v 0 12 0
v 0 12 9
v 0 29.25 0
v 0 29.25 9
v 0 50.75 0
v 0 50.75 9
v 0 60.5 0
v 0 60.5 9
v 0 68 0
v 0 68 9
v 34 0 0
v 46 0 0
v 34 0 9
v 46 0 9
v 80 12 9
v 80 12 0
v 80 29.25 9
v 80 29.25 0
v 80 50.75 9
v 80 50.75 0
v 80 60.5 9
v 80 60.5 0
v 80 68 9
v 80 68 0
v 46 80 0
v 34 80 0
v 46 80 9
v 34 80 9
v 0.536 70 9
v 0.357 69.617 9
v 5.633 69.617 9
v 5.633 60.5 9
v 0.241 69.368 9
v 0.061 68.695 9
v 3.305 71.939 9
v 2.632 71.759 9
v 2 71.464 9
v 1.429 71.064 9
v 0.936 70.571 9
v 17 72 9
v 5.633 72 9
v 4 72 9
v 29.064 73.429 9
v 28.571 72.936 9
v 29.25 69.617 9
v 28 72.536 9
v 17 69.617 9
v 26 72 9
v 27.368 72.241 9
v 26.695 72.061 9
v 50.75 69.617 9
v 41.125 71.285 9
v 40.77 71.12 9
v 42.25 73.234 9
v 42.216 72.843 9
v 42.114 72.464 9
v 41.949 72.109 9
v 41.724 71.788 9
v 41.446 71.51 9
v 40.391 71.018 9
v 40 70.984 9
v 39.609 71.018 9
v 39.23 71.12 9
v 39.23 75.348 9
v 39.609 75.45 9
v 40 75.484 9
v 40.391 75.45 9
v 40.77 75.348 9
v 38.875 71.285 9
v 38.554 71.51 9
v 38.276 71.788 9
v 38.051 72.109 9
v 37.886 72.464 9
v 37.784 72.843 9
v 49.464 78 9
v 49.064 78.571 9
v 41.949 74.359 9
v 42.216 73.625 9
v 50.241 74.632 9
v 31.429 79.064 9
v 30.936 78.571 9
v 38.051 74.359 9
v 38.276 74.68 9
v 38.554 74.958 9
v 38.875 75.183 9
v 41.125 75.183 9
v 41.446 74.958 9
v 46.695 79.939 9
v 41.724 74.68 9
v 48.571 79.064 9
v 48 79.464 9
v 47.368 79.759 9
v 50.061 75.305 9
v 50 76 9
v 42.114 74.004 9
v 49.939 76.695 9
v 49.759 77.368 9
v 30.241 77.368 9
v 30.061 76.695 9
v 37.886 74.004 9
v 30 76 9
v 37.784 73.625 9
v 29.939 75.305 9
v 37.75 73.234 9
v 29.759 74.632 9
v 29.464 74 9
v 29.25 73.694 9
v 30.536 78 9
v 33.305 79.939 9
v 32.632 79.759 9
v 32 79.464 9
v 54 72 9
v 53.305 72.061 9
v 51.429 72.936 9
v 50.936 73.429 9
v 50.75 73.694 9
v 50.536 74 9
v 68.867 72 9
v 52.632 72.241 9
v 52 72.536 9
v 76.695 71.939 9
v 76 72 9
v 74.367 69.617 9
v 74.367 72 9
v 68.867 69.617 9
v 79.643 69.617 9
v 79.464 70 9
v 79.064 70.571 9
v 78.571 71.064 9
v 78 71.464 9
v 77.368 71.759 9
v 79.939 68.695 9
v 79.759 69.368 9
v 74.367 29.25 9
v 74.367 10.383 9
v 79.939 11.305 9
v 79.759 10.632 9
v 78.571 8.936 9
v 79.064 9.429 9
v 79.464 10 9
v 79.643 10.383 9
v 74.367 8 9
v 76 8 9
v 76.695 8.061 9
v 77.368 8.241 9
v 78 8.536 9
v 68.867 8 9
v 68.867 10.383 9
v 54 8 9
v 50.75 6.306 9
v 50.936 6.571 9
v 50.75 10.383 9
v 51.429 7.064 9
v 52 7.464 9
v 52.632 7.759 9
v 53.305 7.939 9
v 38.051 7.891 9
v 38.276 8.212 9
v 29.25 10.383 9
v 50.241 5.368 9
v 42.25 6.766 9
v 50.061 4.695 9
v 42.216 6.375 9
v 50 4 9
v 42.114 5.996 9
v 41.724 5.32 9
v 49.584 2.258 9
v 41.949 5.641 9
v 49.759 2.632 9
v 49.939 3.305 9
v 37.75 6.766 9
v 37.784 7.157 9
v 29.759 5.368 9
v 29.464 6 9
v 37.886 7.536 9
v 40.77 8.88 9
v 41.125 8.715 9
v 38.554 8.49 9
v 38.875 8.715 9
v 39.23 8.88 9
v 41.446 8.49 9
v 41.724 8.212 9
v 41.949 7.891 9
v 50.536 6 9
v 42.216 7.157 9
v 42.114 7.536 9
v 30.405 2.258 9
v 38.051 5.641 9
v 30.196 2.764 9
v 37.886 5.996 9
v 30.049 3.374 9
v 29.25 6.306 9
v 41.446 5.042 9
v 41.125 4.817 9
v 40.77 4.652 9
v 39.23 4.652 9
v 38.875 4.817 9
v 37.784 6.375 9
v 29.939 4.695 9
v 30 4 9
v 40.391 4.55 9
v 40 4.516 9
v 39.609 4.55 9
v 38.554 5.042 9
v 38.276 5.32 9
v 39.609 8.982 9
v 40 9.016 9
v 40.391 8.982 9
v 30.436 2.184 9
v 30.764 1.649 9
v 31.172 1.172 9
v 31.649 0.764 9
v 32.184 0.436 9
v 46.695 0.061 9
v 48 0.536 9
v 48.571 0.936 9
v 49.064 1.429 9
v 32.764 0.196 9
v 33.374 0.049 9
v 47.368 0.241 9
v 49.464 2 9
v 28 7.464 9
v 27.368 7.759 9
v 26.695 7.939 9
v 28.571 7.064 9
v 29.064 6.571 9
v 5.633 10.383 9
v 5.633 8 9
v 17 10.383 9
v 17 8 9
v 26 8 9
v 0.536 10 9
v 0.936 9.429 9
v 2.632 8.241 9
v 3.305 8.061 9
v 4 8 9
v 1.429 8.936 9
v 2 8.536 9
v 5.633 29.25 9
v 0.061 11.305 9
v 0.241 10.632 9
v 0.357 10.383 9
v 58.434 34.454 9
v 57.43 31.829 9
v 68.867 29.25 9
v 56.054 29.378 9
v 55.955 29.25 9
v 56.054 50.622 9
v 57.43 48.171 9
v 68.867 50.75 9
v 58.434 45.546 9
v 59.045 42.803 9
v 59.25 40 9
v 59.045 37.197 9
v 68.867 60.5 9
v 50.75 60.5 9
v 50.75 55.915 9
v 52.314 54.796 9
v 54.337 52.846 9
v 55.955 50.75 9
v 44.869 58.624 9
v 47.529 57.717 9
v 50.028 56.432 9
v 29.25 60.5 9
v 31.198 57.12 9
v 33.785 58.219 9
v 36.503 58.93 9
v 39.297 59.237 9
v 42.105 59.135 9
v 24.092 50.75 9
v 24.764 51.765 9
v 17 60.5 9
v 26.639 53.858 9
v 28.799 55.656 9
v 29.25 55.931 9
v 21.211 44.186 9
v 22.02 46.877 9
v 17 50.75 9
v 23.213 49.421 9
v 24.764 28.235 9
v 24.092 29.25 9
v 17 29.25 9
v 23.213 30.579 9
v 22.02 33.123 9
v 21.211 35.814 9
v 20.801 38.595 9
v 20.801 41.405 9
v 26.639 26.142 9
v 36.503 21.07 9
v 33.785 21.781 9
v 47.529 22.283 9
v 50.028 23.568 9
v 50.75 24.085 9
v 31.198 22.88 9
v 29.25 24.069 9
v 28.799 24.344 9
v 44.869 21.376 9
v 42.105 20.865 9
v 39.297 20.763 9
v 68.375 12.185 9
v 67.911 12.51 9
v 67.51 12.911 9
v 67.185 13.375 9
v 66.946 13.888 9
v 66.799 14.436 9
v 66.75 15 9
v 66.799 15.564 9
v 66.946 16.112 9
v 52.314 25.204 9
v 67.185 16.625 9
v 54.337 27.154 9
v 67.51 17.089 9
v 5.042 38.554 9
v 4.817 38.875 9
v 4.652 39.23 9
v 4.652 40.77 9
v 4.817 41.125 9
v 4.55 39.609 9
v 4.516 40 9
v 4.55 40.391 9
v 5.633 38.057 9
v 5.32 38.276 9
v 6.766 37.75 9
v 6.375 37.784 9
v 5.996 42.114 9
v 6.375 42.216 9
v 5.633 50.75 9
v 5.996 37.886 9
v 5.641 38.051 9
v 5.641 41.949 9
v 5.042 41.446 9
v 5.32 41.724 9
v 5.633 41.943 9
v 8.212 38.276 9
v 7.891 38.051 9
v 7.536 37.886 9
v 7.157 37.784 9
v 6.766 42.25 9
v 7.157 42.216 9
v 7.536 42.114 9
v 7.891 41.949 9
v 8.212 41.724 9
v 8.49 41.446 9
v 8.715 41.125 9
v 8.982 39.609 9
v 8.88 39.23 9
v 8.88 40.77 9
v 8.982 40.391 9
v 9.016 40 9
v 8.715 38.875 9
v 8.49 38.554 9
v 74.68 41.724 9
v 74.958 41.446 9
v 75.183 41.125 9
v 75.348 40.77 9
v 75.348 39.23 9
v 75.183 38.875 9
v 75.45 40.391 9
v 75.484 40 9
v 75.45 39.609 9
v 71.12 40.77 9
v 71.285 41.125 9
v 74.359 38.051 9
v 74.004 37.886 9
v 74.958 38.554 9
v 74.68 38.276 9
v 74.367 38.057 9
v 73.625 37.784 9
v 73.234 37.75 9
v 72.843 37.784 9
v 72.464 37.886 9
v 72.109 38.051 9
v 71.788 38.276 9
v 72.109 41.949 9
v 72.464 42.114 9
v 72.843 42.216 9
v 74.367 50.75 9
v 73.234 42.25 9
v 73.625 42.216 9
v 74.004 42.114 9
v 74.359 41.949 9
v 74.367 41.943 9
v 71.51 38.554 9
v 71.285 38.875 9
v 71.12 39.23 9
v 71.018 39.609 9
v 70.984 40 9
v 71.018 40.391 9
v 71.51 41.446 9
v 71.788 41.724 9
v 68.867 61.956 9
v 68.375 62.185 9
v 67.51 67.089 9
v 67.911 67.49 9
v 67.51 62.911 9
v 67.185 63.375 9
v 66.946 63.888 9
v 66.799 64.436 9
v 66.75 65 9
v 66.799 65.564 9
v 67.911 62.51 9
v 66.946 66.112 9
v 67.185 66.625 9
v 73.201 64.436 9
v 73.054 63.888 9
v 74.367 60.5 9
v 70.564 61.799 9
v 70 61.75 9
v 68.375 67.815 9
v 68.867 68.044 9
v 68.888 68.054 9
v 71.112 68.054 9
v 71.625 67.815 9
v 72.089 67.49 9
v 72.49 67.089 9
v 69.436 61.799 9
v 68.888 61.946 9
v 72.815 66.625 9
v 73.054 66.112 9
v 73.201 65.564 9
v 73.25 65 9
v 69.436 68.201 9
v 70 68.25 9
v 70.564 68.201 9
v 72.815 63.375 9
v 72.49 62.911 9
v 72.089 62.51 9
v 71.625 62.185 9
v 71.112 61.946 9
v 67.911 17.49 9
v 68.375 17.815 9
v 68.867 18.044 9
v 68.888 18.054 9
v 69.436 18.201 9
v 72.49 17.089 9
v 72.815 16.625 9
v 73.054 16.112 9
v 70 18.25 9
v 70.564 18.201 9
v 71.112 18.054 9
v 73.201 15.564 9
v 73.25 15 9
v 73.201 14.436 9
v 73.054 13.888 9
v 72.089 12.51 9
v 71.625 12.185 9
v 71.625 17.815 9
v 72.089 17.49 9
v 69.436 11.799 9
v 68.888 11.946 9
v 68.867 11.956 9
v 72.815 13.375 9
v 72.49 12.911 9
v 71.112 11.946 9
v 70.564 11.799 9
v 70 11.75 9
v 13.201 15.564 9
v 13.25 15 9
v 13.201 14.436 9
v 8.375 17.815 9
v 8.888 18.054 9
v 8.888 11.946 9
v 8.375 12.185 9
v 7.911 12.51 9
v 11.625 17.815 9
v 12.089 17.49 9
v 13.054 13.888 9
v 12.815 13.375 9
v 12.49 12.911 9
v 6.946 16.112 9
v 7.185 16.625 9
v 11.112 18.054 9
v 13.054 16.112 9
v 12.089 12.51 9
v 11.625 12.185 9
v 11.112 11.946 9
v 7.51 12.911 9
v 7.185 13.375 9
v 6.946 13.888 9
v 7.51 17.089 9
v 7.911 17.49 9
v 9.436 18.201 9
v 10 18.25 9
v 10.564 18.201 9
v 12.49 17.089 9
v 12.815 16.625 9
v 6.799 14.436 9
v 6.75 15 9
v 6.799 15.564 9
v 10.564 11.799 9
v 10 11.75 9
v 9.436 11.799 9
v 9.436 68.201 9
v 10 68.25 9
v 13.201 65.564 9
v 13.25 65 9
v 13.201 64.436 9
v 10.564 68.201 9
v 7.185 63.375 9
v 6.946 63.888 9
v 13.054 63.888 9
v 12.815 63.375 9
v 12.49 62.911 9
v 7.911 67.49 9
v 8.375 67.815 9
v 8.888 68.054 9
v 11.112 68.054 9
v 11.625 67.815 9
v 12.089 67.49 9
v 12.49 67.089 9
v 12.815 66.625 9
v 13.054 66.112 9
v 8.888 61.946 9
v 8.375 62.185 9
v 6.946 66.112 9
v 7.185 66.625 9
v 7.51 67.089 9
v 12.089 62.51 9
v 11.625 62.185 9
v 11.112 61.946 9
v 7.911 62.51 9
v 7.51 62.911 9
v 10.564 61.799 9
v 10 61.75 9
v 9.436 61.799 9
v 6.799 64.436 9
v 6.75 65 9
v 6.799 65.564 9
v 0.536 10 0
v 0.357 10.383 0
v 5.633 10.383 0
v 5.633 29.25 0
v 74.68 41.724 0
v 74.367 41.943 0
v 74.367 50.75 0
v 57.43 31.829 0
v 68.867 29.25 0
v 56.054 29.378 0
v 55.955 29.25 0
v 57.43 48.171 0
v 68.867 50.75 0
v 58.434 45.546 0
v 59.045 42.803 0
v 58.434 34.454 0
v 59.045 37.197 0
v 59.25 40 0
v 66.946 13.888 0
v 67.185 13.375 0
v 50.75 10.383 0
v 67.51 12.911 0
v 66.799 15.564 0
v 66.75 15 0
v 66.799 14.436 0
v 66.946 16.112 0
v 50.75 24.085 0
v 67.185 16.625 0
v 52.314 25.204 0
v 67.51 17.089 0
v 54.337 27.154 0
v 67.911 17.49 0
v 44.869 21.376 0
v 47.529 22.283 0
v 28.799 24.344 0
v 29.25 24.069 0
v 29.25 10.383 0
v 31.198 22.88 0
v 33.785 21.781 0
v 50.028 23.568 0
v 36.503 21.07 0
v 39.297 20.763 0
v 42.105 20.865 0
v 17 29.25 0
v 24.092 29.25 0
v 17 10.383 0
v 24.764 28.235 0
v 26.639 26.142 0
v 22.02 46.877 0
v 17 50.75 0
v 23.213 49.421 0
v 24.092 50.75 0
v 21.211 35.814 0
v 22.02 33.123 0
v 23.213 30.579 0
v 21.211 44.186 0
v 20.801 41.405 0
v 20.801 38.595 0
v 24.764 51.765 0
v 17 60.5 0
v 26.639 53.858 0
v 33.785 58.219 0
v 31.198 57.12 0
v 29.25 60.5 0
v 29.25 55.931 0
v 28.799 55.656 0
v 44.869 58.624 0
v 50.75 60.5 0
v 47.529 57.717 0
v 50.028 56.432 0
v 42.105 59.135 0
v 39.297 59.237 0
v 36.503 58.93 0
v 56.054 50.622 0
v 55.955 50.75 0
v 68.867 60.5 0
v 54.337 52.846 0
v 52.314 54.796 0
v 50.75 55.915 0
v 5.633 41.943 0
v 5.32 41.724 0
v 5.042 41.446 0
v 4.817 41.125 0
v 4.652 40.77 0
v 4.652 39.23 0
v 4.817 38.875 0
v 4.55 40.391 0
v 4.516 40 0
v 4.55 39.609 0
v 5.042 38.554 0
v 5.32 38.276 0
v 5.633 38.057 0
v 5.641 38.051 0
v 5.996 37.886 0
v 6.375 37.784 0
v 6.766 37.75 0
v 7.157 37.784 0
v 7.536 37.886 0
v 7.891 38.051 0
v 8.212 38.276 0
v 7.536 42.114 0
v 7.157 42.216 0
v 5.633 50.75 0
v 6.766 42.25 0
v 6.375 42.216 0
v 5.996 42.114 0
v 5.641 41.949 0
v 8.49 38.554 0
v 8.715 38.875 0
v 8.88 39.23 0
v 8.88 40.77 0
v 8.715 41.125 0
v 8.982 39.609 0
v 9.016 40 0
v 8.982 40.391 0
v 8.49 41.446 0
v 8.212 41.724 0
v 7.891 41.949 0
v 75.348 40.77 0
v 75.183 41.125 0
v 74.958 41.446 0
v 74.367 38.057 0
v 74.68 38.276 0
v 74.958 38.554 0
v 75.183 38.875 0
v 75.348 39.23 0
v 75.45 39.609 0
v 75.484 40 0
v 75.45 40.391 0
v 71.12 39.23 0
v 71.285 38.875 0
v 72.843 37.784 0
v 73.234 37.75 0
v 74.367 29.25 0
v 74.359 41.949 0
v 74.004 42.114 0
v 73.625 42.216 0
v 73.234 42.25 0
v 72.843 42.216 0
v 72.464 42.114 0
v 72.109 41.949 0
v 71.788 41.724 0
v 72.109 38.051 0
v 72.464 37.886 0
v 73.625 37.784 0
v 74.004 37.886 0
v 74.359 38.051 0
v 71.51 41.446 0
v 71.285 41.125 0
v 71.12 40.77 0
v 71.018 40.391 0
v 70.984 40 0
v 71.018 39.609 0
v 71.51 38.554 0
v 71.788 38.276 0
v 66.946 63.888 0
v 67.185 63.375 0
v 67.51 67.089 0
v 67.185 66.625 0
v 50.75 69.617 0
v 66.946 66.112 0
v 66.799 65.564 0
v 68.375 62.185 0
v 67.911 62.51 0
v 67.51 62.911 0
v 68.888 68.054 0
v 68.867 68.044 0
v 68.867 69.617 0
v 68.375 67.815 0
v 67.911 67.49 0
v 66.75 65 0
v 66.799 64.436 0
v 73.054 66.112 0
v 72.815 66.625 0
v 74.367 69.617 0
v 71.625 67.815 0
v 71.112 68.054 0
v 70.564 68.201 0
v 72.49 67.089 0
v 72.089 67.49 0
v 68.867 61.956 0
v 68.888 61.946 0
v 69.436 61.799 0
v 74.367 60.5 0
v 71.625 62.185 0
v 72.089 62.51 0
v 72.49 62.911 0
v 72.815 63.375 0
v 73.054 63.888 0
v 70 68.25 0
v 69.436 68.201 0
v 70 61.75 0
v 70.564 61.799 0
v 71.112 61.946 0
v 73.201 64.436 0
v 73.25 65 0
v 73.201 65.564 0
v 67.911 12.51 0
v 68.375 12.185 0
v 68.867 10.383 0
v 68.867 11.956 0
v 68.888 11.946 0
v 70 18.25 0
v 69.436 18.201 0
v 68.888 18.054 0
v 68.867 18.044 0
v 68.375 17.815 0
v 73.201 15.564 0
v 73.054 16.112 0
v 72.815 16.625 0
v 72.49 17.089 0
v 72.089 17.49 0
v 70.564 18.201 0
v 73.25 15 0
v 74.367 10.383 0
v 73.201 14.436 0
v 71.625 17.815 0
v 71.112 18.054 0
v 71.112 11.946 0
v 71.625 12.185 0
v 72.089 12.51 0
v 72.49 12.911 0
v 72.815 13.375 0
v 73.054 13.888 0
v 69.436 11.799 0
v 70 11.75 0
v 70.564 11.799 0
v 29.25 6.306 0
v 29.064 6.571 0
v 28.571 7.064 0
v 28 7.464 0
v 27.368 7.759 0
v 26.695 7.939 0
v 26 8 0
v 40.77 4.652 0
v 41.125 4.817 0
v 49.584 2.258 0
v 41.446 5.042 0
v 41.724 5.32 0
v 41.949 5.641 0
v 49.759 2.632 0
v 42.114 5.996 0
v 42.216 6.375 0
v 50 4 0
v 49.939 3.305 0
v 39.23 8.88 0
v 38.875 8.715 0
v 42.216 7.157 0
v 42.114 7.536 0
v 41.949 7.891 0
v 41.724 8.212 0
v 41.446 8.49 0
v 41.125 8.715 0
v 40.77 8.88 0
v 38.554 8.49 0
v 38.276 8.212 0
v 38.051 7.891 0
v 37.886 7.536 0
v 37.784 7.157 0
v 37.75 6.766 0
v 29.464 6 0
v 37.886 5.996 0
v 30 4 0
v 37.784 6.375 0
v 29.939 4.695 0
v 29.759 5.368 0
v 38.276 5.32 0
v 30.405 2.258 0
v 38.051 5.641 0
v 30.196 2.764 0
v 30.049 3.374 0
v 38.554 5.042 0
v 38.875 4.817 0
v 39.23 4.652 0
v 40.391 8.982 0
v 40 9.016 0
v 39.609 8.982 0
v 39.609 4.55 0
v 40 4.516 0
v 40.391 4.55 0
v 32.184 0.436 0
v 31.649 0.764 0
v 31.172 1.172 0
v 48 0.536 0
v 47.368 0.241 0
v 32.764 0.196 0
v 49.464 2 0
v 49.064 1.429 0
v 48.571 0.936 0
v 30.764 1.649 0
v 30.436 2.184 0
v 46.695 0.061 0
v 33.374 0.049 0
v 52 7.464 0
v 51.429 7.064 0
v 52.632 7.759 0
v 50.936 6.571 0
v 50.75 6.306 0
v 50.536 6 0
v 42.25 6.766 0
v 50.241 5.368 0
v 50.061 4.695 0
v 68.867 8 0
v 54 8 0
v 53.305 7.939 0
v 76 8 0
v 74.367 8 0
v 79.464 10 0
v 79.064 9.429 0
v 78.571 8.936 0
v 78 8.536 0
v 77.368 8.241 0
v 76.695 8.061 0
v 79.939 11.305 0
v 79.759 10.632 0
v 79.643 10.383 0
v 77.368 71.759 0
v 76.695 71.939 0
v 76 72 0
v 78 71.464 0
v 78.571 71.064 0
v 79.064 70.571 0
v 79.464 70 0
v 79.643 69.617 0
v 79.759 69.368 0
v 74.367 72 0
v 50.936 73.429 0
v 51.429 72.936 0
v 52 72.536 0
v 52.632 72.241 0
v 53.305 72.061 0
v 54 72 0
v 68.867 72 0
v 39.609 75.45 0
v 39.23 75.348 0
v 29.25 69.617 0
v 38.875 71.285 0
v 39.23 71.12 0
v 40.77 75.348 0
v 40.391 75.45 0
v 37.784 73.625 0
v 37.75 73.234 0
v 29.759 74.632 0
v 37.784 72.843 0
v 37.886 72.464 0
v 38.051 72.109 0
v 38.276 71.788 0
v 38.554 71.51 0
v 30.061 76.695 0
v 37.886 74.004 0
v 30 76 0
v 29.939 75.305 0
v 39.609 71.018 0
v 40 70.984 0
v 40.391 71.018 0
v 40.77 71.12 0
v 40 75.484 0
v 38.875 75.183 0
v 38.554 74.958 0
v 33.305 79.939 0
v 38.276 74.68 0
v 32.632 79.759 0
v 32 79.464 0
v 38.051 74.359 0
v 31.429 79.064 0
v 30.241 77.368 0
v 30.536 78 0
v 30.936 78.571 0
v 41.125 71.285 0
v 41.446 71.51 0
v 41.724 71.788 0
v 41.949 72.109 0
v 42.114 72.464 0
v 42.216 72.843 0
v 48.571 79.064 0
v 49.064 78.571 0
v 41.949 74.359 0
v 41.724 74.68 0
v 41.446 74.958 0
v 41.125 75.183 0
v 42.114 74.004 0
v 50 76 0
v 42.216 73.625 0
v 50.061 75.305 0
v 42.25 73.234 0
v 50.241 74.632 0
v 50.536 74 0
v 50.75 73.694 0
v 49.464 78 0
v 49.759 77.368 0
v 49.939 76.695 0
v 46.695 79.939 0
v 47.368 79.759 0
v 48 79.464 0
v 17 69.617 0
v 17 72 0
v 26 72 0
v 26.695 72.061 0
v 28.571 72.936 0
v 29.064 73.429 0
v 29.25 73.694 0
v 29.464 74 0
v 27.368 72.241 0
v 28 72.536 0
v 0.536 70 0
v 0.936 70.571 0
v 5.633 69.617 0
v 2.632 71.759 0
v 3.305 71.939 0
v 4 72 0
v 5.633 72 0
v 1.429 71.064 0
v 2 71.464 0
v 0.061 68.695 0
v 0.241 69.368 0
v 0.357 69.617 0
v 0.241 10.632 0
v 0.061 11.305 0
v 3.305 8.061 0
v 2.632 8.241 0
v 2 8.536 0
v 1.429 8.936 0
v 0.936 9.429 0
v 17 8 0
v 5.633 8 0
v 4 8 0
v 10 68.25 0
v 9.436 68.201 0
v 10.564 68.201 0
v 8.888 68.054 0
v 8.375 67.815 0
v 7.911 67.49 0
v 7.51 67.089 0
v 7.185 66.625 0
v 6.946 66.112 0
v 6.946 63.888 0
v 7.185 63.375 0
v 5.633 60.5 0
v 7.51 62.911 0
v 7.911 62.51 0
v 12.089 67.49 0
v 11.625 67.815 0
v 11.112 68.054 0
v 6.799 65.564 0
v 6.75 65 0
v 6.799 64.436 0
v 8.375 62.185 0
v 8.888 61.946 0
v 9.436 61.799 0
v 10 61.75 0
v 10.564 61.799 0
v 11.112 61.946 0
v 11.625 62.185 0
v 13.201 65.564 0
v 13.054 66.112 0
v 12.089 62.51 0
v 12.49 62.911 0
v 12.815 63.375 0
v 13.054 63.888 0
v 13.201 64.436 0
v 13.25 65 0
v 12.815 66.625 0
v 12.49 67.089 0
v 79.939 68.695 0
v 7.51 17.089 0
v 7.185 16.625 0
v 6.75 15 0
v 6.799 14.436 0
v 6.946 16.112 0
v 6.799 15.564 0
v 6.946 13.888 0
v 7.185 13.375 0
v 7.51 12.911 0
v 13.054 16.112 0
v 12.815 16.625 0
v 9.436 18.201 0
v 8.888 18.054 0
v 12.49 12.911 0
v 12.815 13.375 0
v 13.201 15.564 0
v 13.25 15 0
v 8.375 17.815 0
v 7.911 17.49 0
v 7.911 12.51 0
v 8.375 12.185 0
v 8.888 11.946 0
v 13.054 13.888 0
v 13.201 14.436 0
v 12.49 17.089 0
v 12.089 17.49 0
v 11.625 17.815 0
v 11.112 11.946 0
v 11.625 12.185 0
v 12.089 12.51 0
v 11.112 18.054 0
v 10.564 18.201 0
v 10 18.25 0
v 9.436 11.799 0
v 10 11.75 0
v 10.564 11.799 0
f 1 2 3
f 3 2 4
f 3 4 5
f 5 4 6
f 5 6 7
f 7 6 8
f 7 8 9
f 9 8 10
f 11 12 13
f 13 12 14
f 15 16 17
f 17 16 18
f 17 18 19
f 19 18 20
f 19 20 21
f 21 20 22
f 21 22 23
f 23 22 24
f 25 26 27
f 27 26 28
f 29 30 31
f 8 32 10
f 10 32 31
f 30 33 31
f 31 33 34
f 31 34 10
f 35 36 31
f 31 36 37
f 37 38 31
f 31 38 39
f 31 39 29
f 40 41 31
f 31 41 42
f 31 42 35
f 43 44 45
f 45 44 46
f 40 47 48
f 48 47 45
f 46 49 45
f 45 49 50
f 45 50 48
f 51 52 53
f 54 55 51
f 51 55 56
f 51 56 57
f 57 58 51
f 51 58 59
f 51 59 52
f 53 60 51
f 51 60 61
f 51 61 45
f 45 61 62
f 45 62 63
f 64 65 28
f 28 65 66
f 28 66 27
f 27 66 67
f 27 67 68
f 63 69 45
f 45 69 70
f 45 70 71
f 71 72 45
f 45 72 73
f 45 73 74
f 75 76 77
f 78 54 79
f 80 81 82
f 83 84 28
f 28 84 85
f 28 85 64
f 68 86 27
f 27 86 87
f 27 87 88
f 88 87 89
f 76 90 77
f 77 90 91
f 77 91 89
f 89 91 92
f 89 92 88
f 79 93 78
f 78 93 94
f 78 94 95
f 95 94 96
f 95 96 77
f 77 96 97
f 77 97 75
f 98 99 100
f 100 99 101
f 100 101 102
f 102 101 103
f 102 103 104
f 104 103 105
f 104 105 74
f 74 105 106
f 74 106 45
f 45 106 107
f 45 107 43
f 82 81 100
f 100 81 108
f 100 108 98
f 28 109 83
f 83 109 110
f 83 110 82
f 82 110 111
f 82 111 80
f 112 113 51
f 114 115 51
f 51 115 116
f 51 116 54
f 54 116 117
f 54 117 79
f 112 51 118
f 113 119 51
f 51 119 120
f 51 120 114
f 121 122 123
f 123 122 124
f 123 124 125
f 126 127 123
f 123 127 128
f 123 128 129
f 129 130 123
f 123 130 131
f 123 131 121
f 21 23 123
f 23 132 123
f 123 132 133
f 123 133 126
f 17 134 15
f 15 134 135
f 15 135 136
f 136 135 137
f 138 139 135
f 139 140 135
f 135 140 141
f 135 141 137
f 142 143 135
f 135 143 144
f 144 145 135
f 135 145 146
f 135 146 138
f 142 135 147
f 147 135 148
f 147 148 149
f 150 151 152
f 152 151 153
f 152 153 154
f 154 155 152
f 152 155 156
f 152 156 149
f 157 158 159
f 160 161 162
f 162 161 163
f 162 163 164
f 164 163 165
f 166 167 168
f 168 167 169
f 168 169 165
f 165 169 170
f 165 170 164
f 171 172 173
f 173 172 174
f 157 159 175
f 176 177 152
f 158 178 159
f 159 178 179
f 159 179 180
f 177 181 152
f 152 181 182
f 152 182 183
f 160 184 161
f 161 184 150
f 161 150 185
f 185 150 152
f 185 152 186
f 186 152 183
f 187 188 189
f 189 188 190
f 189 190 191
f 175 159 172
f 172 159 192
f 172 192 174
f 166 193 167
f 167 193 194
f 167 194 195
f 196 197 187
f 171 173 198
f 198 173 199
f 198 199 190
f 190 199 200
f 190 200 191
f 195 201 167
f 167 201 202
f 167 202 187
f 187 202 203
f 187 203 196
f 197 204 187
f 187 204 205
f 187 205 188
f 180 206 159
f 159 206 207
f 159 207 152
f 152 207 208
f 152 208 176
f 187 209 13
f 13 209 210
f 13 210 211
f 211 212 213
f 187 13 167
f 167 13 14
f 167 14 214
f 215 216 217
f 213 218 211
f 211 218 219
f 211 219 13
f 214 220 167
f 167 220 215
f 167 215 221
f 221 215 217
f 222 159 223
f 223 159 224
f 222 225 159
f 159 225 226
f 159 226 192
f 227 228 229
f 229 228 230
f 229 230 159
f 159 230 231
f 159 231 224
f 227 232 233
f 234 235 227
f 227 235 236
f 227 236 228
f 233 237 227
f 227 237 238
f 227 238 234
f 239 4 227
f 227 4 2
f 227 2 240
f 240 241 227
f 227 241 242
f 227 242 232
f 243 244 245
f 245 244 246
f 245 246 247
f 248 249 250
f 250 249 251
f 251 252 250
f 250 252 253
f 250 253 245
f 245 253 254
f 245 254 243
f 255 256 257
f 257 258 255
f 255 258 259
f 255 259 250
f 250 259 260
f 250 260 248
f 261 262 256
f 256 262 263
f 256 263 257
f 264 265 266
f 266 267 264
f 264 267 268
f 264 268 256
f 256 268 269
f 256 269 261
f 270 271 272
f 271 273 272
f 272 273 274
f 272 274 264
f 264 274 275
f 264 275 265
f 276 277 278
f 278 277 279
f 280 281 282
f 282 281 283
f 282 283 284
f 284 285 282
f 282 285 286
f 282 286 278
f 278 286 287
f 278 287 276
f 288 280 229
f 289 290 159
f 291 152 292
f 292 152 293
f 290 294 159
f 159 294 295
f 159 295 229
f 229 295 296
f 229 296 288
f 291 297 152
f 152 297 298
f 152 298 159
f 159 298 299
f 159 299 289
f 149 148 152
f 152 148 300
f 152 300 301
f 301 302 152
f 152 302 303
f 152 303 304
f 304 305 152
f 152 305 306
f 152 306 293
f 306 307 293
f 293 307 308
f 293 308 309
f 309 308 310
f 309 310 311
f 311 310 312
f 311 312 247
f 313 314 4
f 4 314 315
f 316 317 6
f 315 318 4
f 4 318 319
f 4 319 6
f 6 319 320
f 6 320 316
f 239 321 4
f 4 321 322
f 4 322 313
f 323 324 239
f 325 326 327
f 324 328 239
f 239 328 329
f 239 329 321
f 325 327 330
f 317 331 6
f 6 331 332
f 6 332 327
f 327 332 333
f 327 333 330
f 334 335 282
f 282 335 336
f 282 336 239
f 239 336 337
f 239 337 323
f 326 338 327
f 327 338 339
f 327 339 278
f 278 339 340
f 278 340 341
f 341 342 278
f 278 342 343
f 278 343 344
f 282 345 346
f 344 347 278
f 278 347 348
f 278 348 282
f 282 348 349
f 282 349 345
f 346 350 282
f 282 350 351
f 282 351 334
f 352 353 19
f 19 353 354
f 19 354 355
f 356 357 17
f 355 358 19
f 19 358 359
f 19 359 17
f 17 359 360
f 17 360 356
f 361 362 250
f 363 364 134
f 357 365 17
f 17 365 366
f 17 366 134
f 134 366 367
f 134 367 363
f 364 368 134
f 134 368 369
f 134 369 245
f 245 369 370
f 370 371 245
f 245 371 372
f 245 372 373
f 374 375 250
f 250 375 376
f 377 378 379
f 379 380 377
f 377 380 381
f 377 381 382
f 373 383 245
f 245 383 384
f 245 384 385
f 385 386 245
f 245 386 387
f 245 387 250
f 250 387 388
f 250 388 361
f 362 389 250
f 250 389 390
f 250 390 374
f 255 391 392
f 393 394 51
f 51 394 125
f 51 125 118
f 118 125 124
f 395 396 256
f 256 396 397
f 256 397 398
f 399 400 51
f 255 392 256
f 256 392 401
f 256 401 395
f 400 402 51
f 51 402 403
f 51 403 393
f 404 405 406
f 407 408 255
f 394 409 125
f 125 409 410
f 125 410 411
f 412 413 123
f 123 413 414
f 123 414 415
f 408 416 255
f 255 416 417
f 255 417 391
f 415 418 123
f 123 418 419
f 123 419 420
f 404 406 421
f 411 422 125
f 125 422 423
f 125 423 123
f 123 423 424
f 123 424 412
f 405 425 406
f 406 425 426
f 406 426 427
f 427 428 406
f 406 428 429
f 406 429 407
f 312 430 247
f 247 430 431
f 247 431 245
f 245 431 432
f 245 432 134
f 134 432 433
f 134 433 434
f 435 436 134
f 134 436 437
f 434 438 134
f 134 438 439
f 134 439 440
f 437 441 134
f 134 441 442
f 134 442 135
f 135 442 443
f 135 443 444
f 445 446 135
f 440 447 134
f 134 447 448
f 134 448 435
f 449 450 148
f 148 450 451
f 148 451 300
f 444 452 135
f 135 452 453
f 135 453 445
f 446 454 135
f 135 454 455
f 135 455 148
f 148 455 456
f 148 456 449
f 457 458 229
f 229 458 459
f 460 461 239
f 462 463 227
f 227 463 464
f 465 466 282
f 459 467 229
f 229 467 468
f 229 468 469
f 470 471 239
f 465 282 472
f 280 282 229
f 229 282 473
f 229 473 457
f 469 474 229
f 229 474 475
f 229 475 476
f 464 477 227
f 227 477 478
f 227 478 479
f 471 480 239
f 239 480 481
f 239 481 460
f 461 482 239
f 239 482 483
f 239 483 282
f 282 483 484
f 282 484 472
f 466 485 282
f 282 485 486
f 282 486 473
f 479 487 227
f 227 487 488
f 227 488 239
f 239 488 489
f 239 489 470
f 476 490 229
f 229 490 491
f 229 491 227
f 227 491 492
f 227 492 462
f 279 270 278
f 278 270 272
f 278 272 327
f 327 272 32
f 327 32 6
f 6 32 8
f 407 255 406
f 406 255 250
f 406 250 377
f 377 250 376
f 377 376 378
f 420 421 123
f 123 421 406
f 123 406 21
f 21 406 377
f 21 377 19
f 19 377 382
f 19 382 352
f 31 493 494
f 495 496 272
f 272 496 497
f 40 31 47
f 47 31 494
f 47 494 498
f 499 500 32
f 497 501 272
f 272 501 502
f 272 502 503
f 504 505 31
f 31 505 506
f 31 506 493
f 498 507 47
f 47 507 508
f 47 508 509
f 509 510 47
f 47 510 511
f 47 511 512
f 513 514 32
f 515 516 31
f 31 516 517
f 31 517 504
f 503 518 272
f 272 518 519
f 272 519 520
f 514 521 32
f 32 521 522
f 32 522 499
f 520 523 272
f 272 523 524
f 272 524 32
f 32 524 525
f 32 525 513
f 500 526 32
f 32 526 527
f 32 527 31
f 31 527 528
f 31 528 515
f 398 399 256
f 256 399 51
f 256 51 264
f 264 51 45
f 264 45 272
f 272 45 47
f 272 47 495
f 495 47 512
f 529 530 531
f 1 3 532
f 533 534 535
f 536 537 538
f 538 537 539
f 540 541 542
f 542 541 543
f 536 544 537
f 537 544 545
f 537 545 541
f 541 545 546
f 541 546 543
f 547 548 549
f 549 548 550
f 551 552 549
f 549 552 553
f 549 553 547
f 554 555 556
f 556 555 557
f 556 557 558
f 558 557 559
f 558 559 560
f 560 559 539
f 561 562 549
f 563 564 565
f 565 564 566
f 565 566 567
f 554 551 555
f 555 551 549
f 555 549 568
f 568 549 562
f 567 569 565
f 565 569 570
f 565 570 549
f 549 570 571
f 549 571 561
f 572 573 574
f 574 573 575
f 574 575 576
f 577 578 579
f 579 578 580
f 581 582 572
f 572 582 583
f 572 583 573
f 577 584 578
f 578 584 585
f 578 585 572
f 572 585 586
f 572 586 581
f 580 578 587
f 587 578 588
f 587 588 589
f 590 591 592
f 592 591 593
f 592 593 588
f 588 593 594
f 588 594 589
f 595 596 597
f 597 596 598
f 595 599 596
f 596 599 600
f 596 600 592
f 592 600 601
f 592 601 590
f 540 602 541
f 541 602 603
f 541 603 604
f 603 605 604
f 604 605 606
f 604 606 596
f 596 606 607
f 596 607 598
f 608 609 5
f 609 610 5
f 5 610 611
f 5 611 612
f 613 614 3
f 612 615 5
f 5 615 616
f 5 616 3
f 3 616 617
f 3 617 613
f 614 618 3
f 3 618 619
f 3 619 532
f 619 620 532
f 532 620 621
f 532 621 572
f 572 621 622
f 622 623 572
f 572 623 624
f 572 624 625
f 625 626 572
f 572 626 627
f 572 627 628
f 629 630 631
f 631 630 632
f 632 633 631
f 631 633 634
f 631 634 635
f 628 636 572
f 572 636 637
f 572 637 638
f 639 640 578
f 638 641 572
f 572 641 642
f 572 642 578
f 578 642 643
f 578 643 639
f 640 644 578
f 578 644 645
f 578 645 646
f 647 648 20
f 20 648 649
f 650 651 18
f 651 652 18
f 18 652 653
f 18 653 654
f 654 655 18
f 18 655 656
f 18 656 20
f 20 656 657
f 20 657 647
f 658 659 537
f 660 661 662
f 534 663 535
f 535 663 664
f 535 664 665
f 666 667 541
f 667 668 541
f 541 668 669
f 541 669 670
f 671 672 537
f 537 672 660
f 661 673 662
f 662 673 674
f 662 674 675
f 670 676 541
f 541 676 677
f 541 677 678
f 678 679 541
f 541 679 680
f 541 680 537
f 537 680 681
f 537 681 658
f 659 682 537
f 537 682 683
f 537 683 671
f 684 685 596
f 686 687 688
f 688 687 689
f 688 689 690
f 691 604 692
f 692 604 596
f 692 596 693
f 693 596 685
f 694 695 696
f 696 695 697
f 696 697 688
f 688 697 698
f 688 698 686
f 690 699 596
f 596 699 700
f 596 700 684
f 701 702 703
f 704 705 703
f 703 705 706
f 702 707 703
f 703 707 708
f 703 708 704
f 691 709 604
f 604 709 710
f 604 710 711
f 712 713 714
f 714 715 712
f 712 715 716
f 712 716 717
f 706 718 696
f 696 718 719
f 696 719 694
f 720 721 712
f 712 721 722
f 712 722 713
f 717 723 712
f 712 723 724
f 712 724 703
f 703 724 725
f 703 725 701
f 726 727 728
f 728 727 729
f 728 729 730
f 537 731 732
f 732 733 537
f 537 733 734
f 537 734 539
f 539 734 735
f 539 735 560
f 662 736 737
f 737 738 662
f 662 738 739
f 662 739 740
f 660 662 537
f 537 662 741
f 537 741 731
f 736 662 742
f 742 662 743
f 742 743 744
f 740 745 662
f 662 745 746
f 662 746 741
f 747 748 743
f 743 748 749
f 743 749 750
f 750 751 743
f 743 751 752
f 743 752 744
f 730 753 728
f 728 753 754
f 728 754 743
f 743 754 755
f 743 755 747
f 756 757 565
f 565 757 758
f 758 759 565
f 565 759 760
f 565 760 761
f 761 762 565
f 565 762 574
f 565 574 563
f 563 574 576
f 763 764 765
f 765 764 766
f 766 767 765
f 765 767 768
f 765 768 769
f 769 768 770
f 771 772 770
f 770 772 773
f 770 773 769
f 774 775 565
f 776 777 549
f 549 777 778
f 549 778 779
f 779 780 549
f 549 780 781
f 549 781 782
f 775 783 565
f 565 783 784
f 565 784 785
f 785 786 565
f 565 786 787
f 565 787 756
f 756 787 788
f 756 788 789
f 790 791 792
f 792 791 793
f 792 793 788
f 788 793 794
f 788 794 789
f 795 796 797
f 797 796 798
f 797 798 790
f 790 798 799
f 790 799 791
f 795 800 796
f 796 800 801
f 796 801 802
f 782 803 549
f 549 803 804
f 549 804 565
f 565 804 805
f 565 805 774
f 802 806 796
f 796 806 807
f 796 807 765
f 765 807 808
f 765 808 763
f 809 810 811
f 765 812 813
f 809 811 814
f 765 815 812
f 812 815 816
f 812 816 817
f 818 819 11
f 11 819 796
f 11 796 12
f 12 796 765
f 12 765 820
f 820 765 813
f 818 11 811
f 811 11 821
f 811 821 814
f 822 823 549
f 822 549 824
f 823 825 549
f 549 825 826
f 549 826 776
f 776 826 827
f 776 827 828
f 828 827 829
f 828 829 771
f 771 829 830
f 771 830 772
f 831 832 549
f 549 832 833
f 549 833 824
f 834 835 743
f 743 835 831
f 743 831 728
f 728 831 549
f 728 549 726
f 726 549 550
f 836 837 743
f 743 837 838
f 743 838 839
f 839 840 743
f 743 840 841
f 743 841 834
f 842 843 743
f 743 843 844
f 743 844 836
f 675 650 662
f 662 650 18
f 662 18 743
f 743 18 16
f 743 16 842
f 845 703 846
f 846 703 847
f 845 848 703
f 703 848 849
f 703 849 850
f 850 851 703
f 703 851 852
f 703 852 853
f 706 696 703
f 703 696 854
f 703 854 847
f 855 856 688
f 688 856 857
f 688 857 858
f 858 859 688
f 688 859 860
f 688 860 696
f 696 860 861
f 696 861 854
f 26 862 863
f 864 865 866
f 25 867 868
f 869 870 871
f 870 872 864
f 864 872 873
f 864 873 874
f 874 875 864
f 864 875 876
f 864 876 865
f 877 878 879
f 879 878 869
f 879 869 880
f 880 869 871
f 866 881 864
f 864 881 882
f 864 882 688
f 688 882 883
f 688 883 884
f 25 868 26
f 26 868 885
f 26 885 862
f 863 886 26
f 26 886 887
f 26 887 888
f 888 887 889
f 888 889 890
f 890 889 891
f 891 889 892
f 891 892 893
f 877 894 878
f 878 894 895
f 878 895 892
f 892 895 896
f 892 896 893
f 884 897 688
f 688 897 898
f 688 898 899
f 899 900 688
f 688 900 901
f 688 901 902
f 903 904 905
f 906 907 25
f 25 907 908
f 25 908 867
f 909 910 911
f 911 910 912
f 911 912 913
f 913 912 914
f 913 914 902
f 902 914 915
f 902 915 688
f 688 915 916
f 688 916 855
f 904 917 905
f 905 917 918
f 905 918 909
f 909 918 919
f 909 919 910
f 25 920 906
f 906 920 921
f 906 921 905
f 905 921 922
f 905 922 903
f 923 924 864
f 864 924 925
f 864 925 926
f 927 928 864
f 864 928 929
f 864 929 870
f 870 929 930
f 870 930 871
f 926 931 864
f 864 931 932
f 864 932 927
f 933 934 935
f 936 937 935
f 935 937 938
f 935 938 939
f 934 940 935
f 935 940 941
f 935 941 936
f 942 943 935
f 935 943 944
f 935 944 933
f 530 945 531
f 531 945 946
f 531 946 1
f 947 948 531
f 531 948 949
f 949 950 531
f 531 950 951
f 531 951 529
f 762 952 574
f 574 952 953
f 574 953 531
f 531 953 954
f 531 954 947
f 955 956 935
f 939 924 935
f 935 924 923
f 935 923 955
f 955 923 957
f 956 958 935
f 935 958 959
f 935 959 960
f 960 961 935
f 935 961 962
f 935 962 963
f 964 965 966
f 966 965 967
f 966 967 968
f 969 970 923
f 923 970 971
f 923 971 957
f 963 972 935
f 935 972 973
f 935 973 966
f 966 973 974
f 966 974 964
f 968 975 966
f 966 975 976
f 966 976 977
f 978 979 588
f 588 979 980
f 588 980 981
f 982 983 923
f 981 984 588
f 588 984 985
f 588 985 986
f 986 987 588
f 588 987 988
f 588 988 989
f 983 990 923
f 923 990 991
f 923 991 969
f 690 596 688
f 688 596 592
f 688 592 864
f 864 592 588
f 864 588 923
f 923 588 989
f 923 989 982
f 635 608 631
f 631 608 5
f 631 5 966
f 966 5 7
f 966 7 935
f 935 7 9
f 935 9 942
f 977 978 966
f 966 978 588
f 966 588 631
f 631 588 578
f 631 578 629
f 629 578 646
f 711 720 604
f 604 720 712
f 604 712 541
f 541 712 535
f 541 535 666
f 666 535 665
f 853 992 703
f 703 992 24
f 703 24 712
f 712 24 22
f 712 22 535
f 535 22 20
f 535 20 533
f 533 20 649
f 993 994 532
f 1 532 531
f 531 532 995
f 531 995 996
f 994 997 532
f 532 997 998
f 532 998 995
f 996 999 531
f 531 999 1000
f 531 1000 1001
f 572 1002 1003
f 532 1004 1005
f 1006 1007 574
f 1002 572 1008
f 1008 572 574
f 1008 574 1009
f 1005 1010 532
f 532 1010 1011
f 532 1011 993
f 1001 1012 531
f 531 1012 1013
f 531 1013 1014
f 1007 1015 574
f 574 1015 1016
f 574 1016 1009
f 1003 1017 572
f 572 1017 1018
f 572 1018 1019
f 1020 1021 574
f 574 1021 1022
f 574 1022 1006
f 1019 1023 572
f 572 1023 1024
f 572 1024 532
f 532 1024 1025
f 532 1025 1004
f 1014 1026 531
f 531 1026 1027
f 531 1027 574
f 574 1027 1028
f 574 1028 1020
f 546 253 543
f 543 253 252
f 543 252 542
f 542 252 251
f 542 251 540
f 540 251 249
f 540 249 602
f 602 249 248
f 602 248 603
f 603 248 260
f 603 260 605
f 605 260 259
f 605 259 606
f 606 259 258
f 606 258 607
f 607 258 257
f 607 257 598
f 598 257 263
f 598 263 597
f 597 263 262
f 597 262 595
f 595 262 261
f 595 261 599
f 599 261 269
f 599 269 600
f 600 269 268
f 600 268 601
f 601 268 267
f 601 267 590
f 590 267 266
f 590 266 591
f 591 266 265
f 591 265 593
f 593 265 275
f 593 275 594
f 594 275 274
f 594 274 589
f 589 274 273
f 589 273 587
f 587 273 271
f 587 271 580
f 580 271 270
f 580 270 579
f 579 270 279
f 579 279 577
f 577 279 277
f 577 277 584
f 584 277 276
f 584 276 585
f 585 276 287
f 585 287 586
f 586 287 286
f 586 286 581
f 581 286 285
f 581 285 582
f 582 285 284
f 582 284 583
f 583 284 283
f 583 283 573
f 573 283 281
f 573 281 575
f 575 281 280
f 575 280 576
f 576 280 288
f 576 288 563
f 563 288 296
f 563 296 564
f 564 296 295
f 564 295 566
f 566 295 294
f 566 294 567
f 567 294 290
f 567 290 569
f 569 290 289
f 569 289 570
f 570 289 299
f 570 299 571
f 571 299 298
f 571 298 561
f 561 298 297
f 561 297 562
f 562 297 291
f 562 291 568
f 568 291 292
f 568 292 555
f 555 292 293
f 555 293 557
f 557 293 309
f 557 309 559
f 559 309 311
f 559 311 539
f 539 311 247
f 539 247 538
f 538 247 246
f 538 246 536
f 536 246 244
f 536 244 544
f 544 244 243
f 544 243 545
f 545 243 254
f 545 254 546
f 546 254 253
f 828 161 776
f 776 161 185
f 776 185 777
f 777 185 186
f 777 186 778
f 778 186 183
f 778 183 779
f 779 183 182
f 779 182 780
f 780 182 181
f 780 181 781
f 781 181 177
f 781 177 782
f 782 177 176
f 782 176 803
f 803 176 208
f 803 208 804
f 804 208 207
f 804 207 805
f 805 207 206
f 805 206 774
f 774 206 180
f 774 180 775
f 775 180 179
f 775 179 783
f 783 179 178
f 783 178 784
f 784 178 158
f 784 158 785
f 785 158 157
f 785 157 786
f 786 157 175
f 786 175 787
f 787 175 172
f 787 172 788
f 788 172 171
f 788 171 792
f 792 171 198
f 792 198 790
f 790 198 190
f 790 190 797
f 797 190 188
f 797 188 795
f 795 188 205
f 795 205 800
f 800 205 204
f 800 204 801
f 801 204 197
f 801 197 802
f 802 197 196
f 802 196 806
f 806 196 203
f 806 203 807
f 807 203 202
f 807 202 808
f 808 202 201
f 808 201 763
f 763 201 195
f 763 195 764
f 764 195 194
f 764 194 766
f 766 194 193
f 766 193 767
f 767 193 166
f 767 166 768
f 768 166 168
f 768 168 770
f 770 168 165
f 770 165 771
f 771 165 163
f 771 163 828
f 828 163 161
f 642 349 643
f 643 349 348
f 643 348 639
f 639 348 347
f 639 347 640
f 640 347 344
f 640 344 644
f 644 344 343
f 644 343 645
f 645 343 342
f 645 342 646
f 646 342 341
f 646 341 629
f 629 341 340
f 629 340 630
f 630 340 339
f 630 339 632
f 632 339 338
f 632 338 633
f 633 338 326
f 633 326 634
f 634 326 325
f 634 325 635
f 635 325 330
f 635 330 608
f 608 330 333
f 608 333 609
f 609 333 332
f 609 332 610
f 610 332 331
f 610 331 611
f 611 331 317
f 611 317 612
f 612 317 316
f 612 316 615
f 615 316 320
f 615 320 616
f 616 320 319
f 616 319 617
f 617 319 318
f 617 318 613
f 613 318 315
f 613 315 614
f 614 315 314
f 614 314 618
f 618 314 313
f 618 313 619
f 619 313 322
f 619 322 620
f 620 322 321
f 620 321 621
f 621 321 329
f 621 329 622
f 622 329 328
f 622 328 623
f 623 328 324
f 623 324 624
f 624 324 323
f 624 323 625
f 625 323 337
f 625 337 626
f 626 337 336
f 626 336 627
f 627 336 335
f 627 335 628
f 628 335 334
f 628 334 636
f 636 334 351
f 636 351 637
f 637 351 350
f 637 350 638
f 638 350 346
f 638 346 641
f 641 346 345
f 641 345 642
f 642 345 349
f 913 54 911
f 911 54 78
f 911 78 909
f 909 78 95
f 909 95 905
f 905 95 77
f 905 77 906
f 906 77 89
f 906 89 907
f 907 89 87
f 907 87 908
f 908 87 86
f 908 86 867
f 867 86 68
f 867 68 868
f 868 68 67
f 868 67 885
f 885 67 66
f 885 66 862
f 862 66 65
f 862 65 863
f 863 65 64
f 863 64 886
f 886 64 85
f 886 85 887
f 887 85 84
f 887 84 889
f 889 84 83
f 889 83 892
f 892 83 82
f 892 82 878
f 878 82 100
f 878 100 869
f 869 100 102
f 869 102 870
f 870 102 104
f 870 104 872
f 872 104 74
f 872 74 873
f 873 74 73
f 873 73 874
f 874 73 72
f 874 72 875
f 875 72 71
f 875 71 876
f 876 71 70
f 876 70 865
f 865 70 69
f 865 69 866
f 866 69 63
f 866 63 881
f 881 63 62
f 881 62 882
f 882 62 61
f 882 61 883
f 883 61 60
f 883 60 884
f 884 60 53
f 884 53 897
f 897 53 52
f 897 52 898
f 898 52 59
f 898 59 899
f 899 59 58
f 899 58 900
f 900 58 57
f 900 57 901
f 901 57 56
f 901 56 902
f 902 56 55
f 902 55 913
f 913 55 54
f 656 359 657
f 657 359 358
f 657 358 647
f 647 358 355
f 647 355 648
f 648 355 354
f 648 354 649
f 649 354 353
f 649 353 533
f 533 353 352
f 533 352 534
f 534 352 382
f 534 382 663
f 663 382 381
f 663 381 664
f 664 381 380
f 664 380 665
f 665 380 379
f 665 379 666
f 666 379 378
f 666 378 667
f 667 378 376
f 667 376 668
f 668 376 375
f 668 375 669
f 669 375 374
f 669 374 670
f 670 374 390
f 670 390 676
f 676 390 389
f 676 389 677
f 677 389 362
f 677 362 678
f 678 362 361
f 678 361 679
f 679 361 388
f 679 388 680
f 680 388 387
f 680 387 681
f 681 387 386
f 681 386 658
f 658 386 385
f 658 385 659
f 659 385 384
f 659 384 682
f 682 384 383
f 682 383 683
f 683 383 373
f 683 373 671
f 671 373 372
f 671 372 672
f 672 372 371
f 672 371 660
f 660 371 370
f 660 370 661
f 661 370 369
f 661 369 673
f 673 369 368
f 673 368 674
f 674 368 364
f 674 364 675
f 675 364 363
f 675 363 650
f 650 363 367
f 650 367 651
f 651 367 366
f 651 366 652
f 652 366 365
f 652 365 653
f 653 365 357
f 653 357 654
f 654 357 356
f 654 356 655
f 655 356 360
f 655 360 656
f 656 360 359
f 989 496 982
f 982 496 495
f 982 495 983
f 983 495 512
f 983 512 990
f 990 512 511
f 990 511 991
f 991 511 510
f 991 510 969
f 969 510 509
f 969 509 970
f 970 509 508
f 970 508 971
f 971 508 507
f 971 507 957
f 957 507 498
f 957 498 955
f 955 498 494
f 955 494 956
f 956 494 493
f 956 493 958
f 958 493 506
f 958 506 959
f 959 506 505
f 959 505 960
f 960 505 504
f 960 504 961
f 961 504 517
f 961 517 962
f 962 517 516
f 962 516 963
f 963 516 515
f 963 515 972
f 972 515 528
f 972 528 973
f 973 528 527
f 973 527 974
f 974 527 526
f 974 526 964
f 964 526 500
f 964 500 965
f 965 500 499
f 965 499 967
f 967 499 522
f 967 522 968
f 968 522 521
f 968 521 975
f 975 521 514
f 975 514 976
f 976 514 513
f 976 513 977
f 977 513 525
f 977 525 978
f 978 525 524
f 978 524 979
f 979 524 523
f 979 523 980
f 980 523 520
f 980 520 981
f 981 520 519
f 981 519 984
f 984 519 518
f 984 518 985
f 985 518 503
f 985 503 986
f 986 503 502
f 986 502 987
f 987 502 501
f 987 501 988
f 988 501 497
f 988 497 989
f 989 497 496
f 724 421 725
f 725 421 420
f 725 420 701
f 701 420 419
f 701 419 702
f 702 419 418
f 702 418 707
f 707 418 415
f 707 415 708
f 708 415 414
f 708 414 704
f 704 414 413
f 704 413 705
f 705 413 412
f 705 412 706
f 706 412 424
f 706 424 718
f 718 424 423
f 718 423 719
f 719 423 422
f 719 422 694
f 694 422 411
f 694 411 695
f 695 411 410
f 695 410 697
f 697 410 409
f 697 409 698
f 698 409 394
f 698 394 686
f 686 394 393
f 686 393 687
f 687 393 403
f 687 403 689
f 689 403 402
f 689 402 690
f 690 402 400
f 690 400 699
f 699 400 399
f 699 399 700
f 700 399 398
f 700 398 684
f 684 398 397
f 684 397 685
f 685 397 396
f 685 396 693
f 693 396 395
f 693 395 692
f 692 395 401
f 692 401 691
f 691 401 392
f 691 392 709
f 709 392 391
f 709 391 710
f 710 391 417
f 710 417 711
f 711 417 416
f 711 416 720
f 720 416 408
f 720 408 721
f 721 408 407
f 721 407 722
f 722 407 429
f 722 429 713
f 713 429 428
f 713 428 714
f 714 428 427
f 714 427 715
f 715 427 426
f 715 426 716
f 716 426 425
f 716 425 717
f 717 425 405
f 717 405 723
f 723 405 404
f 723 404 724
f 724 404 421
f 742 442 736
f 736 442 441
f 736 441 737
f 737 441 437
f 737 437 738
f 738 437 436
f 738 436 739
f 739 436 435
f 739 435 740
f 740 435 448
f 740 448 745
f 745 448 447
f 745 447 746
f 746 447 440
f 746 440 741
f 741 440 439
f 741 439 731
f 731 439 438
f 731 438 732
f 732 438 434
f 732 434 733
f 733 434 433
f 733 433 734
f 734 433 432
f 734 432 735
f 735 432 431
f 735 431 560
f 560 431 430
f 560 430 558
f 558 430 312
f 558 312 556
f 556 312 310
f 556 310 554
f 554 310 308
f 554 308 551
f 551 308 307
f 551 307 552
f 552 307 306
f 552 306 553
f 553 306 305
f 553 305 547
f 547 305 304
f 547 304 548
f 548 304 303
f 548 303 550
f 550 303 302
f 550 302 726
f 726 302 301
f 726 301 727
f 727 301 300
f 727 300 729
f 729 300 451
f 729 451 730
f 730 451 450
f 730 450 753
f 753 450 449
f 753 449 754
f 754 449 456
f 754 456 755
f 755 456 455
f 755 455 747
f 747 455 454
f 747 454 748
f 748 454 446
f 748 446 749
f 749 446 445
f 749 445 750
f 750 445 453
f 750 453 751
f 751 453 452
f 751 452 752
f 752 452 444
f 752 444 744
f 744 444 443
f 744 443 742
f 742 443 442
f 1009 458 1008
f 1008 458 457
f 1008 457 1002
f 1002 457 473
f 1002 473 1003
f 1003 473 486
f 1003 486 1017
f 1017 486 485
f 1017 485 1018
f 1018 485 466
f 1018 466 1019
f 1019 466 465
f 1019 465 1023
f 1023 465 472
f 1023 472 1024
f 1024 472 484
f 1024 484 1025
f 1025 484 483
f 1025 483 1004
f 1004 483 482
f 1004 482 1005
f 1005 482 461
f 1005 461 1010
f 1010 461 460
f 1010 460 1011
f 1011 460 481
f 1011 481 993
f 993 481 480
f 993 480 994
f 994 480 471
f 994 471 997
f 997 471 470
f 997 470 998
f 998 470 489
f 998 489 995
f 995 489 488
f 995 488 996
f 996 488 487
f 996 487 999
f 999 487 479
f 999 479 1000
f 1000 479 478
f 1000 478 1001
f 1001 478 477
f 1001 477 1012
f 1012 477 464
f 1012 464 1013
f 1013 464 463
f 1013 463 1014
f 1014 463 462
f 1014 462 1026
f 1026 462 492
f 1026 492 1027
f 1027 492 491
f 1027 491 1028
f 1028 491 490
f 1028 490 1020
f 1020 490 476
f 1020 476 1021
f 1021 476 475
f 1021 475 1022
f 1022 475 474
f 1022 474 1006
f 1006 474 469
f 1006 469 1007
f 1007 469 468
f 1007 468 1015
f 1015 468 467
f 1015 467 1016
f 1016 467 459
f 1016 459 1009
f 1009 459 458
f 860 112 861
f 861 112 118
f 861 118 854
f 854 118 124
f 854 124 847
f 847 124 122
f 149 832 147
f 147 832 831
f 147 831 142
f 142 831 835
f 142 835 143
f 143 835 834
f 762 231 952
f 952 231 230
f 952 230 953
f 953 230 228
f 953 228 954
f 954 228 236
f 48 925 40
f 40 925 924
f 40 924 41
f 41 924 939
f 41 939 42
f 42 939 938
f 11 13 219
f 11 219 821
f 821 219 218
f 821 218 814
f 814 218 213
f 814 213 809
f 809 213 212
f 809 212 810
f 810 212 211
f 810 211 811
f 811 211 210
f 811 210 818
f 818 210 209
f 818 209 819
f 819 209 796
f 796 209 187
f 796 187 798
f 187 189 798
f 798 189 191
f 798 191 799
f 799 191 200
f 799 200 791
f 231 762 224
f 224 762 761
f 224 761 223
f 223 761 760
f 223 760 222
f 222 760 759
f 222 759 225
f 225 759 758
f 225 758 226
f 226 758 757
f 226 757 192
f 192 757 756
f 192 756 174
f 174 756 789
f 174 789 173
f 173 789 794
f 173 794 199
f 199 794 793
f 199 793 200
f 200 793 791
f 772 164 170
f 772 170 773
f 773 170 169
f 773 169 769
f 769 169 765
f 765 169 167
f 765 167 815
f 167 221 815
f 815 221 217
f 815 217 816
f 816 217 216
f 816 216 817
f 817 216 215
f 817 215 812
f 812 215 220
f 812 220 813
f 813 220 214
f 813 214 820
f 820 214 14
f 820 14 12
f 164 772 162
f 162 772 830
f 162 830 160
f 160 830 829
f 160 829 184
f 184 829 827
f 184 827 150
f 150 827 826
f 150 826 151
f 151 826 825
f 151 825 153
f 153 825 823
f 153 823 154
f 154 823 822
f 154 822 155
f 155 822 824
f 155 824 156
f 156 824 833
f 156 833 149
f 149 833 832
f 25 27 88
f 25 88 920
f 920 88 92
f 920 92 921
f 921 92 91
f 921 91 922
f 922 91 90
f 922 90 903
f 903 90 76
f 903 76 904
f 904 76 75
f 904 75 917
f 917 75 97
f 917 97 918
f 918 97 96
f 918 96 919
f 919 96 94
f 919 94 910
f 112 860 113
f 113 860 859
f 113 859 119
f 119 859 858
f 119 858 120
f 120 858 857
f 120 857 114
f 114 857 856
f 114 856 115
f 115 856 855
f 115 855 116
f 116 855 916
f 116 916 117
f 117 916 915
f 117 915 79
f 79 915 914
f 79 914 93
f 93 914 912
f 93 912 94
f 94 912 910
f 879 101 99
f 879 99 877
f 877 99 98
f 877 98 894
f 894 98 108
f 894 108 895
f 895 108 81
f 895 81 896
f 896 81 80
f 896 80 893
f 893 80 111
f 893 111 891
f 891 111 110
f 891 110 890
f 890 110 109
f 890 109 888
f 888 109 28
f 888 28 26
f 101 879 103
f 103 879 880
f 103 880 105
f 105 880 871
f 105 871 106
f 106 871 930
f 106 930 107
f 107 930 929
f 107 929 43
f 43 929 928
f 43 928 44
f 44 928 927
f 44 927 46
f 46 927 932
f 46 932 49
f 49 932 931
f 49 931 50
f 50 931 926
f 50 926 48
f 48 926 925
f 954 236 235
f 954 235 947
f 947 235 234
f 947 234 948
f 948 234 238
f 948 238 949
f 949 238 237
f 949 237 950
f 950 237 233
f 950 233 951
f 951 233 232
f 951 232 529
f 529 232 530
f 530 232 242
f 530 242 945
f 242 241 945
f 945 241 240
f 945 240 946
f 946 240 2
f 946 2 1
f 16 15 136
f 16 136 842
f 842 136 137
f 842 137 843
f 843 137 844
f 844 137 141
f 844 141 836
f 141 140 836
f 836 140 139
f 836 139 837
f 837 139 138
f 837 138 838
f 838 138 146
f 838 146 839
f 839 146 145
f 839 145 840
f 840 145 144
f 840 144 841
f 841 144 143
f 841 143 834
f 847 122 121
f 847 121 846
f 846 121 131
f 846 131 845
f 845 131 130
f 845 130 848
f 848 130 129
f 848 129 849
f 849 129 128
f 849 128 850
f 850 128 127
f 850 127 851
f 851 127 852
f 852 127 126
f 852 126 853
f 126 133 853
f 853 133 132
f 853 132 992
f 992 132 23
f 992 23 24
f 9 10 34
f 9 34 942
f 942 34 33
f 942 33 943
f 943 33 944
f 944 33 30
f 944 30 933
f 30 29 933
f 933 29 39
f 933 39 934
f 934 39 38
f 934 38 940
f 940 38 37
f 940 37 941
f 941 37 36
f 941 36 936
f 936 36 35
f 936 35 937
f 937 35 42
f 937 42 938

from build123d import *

# Parameters (mm, degrees)
ESQUISSE1_W                  = 80
ESQUISSE1_H                  = 80
BOSS_EXTRU_1_DEPTH           = 9
ESQUISSE2_R                  = 19.25
ESQUISSE2_R_2                = 2.25
ESQUISSE2_R_3                = 3.25
ENL_V_MAT_EXTRU_1_DEPTH      = 114.494493258
ENL_V_MAT_EXTRU_2_DEPTH      = 114.494493258
ENL_V_MAT_EXTRU_2_DEPTH_BACK = 114.494493258
ESQUISSE3_W                  = 30
ESQUISSE3_H                  = 8
CONG_1_R                     = 4


with BuildPart() as part:
    # Esquisse1 → Boss.-Extru.1 (new body)
    with BuildSketch(Plane.XY):
        with Locations((40, 40)):
            Rectangle(ESQUISSE1_W, ESQUISSE1_H)
    extrude(amount=BOSS_EXTRU_1_DEPTH)

    # Esquisse2 → Enlèv. mat.-Extru.1 (cut, through all)
    with BuildSketch(Plane.XY.offset(9)):
        with Locations((40, 40)):
            Circle(ESQUISSE2_R)
        with Locations((73.234018716, 40)):
            Circle(ESQUISSE2_R_2)
        with Locations((40, 73.234018716)):
            Circle(ESQUISSE2_R_2)
        with Locations(Location((6.765981284, 40, 0), (0, 0, 180))):
            Circle(ESQUISSE2_R_2)
        with Locations(Location((40, 6.765981284, 0), (0, 0, 180))):
            Circle(ESQUISSE2_R_2)
        with Locations((10, 65)):
            Circle(ESQUISSE2_R_3)
        with Locations(Location((70, 65, 0), (0, 0, 180))):
            Circle(ESQUISSE2_R_3)
        with Locations((70, 15)):
            Circle(ESQUISSE2_R_3)
        with Locations(Location((10, 15, 0), (0, 0, 180))):
            Circle(ESQUISSE2_R_3)
    extrude(amount=-ENL_V_MAT_EXTRU_1_DEPTH, mode=Mode.SUBTRACT)

    # Esquisse3 → Enlèv. mat.-Extru.2 (cut, two sides: drawn at the far end of the back side and taken through both)
    with BuildSketch(Plane.XY.offset(9).offset(-ENL_V_MAT_EXTRU_2_DEPTH_BACK)):
        with Locations((15, 76)):
            Rectangle(ESQUISSE3_W, ESQUISSE3_H)
        with Locations((65, 76)):
            Rectangle(ESQUISSE3_W, ESQUISSE3_H)
        with Locations((15, 4)):
            Rectangle(ESQUISSE3_W, ESQUISSE3_H)
        with Locations((65, 4)):
            Rectangle(ESQUISSE3_W, ESQUISSE3_H)
    extrude(amount=ENL_V_MAT_EXTRU_2_DEPTH + ENL_V_MAT_EXTRU_2_DEPTH_BACK, mode=Mode.SUBTRACT)

    # Congé1
    cong_1_edges = [part.edges().sort_by_distance(p)[0] for p in [
        (30, 72, 4.5),
        (50, 72, 4.5),
        (50, 8, 4.5),
        (30, 8, 4.5),
        (0, 8, 4.5),
        (30, 0, 4.5),
        (50, 0, 4.5),
        (80, 8, 4.5),
        (80, 72, 4.5),
        (50, 80, 4.5),
        (30, 80, 4.5),
        (0, 72, 4.5),
    ]]
    fillet(cong_1_edges, radius=CONG_1_R - 0.0001)  # a hair under: the kernel refuses the full size


solid = part.part
